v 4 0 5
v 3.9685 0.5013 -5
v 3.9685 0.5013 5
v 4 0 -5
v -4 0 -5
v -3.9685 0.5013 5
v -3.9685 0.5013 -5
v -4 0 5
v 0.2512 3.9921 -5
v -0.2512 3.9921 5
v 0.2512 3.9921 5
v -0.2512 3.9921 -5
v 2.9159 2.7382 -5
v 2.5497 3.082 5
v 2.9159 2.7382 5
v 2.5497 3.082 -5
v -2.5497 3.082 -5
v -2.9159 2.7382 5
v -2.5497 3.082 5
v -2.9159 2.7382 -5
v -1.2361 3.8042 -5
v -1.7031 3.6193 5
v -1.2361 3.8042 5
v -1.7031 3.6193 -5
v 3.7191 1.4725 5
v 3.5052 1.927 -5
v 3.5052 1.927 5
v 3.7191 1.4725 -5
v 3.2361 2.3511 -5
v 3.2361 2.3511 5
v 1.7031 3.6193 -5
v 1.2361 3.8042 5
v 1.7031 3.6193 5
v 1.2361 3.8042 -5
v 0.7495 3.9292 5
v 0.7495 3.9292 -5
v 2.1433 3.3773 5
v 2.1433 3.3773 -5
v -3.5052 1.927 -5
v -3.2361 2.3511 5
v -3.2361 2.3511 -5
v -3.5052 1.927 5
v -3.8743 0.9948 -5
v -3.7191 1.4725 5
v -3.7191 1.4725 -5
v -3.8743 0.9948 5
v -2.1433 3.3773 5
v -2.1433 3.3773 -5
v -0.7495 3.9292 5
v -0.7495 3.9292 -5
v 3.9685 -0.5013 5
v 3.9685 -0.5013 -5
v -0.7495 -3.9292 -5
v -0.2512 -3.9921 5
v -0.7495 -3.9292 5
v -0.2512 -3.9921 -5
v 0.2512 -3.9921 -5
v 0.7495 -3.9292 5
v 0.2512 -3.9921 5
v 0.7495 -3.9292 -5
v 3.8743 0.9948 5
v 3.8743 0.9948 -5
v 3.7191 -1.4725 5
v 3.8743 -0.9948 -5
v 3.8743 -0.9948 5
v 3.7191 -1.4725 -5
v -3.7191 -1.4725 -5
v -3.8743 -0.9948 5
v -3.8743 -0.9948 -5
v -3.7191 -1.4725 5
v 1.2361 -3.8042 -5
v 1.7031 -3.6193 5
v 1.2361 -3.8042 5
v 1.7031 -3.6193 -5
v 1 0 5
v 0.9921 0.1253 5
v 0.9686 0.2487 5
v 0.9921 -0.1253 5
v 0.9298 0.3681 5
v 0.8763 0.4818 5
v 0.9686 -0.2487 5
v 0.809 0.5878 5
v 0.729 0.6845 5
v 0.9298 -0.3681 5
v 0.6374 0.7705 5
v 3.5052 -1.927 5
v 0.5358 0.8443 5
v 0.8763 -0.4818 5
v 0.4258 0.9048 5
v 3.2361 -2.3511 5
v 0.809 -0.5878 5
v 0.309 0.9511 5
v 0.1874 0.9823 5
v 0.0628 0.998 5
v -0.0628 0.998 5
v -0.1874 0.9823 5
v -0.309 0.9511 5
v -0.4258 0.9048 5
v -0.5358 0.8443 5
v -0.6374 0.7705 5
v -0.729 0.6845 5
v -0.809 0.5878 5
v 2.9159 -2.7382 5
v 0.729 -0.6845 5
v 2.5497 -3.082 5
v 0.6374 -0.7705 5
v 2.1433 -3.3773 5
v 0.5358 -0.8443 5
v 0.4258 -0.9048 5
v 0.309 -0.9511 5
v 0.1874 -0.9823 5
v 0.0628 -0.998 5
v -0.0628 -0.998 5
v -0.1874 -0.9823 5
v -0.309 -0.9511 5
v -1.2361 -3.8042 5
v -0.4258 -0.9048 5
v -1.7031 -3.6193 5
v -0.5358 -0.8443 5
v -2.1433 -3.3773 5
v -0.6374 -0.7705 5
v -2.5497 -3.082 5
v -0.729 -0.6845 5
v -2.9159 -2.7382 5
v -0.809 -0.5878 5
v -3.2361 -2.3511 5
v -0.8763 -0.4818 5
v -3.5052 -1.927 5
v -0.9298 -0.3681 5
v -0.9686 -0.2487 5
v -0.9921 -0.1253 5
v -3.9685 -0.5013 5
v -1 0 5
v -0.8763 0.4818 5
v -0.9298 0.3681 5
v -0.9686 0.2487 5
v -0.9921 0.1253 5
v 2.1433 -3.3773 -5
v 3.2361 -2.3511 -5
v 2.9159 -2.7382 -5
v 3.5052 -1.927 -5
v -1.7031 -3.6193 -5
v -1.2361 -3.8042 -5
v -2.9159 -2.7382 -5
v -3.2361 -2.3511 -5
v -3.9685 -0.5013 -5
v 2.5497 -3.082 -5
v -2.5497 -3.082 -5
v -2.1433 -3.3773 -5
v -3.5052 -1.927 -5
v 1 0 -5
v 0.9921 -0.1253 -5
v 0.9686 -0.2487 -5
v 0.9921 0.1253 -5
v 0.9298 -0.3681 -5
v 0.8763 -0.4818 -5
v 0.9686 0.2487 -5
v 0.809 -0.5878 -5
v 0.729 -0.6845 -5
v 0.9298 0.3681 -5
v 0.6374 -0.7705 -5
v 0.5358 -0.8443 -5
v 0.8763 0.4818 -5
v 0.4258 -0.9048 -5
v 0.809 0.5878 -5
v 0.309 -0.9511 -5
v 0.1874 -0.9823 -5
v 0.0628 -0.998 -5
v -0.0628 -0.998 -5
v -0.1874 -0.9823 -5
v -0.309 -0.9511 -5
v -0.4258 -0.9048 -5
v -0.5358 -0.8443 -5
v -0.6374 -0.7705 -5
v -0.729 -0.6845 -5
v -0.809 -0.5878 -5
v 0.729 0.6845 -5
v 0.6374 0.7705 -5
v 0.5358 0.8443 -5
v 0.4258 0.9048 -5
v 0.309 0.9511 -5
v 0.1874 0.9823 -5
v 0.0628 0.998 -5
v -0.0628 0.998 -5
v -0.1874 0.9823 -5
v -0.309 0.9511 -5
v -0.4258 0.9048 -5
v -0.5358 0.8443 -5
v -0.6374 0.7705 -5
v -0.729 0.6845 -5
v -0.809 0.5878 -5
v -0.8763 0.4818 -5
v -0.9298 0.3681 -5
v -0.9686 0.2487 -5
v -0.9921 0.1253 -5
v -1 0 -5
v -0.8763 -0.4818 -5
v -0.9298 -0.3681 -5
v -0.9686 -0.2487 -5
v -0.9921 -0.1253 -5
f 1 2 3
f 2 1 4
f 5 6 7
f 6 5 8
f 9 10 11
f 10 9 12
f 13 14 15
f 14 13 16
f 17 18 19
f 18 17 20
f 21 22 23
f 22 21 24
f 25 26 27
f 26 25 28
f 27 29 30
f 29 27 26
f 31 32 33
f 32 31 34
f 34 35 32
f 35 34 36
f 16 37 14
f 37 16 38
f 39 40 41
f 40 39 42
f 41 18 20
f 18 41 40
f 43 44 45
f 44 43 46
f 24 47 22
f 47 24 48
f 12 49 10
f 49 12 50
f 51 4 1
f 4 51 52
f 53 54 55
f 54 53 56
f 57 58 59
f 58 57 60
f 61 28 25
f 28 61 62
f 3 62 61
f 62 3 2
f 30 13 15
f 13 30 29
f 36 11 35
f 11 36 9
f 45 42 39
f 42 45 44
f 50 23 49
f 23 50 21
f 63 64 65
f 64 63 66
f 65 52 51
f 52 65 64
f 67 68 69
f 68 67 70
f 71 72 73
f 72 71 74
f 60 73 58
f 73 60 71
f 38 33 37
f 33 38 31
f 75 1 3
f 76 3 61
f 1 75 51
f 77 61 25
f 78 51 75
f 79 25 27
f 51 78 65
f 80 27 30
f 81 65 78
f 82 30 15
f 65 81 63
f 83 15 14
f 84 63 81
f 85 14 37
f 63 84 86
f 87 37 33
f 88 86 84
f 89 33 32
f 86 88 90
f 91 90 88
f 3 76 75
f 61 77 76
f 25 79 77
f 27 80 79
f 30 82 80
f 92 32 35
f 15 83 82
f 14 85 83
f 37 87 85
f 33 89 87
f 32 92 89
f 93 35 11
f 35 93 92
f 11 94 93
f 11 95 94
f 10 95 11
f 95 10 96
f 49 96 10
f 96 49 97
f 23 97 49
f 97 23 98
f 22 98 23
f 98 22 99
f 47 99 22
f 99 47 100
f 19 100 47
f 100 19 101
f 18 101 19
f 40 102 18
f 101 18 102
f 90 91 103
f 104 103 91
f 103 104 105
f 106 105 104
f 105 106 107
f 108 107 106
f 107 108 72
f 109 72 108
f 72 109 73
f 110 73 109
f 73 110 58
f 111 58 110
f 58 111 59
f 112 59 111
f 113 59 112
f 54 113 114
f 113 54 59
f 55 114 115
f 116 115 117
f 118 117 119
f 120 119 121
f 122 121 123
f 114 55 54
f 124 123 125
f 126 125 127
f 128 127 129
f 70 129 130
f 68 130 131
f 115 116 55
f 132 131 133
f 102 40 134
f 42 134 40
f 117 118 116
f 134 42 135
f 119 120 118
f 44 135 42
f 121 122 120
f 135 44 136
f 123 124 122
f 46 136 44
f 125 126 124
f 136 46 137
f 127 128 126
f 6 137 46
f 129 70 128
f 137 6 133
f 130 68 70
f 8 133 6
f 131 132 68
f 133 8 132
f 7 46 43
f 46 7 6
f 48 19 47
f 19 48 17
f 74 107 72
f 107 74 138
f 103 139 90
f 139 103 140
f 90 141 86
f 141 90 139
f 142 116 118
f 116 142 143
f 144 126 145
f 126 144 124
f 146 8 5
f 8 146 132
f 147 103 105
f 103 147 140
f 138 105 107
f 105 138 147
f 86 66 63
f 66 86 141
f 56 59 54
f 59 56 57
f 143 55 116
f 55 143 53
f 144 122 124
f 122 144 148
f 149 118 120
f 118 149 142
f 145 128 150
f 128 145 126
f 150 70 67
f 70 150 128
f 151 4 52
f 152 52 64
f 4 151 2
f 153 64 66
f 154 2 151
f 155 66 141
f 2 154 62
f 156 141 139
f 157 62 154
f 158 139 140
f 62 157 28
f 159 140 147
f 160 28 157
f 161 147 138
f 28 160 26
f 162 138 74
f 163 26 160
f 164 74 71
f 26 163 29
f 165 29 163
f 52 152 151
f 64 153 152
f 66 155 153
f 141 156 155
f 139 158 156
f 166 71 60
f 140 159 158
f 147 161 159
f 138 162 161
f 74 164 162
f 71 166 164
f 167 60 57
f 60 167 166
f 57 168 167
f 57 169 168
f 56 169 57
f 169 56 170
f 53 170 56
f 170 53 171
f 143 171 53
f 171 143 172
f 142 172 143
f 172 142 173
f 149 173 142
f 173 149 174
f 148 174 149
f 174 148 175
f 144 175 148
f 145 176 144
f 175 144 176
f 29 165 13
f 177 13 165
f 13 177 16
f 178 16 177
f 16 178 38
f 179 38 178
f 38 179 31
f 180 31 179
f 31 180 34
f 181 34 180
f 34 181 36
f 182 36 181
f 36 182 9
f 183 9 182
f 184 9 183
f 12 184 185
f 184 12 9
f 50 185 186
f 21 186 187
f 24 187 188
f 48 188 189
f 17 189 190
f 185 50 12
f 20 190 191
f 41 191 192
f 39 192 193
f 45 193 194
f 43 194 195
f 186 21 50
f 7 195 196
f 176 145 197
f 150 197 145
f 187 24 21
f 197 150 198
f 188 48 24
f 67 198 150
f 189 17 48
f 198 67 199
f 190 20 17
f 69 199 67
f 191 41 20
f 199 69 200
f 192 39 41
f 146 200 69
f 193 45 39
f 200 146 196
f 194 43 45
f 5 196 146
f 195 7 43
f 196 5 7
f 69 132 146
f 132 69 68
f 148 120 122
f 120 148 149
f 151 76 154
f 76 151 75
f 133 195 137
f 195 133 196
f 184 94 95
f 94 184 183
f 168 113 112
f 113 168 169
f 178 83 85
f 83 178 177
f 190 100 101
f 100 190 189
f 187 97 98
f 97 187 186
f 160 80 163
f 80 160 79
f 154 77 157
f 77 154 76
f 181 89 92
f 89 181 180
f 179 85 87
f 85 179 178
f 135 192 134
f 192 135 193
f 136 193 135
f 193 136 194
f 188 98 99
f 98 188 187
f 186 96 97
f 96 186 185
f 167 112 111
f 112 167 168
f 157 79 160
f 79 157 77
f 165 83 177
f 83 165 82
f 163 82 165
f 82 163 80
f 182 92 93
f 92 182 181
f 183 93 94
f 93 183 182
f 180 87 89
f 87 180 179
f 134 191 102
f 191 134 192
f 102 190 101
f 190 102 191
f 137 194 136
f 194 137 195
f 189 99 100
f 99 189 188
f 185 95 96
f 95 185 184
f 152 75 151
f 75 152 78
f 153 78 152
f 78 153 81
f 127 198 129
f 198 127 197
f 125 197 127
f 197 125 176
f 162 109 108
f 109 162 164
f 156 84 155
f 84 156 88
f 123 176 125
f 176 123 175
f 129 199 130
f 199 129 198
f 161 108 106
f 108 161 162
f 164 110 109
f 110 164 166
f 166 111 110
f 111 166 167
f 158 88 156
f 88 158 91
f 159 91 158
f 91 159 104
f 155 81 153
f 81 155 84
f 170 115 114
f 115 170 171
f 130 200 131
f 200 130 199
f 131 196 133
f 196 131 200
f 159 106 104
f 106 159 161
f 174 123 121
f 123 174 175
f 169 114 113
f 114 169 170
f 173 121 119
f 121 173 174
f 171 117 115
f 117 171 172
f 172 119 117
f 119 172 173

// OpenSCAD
$fn = 50;


difference() {
	union() {
		translate(v = [0, 0, -5.0000000000]) {
			cylinder(h = 10, r = 4.0000000000);
		}
	}
	union() {
		translate(v = [0, 0, -100.0000000000]) {
			cylinder(h = 200, r = 1.0000000000);
		}
	}
}
